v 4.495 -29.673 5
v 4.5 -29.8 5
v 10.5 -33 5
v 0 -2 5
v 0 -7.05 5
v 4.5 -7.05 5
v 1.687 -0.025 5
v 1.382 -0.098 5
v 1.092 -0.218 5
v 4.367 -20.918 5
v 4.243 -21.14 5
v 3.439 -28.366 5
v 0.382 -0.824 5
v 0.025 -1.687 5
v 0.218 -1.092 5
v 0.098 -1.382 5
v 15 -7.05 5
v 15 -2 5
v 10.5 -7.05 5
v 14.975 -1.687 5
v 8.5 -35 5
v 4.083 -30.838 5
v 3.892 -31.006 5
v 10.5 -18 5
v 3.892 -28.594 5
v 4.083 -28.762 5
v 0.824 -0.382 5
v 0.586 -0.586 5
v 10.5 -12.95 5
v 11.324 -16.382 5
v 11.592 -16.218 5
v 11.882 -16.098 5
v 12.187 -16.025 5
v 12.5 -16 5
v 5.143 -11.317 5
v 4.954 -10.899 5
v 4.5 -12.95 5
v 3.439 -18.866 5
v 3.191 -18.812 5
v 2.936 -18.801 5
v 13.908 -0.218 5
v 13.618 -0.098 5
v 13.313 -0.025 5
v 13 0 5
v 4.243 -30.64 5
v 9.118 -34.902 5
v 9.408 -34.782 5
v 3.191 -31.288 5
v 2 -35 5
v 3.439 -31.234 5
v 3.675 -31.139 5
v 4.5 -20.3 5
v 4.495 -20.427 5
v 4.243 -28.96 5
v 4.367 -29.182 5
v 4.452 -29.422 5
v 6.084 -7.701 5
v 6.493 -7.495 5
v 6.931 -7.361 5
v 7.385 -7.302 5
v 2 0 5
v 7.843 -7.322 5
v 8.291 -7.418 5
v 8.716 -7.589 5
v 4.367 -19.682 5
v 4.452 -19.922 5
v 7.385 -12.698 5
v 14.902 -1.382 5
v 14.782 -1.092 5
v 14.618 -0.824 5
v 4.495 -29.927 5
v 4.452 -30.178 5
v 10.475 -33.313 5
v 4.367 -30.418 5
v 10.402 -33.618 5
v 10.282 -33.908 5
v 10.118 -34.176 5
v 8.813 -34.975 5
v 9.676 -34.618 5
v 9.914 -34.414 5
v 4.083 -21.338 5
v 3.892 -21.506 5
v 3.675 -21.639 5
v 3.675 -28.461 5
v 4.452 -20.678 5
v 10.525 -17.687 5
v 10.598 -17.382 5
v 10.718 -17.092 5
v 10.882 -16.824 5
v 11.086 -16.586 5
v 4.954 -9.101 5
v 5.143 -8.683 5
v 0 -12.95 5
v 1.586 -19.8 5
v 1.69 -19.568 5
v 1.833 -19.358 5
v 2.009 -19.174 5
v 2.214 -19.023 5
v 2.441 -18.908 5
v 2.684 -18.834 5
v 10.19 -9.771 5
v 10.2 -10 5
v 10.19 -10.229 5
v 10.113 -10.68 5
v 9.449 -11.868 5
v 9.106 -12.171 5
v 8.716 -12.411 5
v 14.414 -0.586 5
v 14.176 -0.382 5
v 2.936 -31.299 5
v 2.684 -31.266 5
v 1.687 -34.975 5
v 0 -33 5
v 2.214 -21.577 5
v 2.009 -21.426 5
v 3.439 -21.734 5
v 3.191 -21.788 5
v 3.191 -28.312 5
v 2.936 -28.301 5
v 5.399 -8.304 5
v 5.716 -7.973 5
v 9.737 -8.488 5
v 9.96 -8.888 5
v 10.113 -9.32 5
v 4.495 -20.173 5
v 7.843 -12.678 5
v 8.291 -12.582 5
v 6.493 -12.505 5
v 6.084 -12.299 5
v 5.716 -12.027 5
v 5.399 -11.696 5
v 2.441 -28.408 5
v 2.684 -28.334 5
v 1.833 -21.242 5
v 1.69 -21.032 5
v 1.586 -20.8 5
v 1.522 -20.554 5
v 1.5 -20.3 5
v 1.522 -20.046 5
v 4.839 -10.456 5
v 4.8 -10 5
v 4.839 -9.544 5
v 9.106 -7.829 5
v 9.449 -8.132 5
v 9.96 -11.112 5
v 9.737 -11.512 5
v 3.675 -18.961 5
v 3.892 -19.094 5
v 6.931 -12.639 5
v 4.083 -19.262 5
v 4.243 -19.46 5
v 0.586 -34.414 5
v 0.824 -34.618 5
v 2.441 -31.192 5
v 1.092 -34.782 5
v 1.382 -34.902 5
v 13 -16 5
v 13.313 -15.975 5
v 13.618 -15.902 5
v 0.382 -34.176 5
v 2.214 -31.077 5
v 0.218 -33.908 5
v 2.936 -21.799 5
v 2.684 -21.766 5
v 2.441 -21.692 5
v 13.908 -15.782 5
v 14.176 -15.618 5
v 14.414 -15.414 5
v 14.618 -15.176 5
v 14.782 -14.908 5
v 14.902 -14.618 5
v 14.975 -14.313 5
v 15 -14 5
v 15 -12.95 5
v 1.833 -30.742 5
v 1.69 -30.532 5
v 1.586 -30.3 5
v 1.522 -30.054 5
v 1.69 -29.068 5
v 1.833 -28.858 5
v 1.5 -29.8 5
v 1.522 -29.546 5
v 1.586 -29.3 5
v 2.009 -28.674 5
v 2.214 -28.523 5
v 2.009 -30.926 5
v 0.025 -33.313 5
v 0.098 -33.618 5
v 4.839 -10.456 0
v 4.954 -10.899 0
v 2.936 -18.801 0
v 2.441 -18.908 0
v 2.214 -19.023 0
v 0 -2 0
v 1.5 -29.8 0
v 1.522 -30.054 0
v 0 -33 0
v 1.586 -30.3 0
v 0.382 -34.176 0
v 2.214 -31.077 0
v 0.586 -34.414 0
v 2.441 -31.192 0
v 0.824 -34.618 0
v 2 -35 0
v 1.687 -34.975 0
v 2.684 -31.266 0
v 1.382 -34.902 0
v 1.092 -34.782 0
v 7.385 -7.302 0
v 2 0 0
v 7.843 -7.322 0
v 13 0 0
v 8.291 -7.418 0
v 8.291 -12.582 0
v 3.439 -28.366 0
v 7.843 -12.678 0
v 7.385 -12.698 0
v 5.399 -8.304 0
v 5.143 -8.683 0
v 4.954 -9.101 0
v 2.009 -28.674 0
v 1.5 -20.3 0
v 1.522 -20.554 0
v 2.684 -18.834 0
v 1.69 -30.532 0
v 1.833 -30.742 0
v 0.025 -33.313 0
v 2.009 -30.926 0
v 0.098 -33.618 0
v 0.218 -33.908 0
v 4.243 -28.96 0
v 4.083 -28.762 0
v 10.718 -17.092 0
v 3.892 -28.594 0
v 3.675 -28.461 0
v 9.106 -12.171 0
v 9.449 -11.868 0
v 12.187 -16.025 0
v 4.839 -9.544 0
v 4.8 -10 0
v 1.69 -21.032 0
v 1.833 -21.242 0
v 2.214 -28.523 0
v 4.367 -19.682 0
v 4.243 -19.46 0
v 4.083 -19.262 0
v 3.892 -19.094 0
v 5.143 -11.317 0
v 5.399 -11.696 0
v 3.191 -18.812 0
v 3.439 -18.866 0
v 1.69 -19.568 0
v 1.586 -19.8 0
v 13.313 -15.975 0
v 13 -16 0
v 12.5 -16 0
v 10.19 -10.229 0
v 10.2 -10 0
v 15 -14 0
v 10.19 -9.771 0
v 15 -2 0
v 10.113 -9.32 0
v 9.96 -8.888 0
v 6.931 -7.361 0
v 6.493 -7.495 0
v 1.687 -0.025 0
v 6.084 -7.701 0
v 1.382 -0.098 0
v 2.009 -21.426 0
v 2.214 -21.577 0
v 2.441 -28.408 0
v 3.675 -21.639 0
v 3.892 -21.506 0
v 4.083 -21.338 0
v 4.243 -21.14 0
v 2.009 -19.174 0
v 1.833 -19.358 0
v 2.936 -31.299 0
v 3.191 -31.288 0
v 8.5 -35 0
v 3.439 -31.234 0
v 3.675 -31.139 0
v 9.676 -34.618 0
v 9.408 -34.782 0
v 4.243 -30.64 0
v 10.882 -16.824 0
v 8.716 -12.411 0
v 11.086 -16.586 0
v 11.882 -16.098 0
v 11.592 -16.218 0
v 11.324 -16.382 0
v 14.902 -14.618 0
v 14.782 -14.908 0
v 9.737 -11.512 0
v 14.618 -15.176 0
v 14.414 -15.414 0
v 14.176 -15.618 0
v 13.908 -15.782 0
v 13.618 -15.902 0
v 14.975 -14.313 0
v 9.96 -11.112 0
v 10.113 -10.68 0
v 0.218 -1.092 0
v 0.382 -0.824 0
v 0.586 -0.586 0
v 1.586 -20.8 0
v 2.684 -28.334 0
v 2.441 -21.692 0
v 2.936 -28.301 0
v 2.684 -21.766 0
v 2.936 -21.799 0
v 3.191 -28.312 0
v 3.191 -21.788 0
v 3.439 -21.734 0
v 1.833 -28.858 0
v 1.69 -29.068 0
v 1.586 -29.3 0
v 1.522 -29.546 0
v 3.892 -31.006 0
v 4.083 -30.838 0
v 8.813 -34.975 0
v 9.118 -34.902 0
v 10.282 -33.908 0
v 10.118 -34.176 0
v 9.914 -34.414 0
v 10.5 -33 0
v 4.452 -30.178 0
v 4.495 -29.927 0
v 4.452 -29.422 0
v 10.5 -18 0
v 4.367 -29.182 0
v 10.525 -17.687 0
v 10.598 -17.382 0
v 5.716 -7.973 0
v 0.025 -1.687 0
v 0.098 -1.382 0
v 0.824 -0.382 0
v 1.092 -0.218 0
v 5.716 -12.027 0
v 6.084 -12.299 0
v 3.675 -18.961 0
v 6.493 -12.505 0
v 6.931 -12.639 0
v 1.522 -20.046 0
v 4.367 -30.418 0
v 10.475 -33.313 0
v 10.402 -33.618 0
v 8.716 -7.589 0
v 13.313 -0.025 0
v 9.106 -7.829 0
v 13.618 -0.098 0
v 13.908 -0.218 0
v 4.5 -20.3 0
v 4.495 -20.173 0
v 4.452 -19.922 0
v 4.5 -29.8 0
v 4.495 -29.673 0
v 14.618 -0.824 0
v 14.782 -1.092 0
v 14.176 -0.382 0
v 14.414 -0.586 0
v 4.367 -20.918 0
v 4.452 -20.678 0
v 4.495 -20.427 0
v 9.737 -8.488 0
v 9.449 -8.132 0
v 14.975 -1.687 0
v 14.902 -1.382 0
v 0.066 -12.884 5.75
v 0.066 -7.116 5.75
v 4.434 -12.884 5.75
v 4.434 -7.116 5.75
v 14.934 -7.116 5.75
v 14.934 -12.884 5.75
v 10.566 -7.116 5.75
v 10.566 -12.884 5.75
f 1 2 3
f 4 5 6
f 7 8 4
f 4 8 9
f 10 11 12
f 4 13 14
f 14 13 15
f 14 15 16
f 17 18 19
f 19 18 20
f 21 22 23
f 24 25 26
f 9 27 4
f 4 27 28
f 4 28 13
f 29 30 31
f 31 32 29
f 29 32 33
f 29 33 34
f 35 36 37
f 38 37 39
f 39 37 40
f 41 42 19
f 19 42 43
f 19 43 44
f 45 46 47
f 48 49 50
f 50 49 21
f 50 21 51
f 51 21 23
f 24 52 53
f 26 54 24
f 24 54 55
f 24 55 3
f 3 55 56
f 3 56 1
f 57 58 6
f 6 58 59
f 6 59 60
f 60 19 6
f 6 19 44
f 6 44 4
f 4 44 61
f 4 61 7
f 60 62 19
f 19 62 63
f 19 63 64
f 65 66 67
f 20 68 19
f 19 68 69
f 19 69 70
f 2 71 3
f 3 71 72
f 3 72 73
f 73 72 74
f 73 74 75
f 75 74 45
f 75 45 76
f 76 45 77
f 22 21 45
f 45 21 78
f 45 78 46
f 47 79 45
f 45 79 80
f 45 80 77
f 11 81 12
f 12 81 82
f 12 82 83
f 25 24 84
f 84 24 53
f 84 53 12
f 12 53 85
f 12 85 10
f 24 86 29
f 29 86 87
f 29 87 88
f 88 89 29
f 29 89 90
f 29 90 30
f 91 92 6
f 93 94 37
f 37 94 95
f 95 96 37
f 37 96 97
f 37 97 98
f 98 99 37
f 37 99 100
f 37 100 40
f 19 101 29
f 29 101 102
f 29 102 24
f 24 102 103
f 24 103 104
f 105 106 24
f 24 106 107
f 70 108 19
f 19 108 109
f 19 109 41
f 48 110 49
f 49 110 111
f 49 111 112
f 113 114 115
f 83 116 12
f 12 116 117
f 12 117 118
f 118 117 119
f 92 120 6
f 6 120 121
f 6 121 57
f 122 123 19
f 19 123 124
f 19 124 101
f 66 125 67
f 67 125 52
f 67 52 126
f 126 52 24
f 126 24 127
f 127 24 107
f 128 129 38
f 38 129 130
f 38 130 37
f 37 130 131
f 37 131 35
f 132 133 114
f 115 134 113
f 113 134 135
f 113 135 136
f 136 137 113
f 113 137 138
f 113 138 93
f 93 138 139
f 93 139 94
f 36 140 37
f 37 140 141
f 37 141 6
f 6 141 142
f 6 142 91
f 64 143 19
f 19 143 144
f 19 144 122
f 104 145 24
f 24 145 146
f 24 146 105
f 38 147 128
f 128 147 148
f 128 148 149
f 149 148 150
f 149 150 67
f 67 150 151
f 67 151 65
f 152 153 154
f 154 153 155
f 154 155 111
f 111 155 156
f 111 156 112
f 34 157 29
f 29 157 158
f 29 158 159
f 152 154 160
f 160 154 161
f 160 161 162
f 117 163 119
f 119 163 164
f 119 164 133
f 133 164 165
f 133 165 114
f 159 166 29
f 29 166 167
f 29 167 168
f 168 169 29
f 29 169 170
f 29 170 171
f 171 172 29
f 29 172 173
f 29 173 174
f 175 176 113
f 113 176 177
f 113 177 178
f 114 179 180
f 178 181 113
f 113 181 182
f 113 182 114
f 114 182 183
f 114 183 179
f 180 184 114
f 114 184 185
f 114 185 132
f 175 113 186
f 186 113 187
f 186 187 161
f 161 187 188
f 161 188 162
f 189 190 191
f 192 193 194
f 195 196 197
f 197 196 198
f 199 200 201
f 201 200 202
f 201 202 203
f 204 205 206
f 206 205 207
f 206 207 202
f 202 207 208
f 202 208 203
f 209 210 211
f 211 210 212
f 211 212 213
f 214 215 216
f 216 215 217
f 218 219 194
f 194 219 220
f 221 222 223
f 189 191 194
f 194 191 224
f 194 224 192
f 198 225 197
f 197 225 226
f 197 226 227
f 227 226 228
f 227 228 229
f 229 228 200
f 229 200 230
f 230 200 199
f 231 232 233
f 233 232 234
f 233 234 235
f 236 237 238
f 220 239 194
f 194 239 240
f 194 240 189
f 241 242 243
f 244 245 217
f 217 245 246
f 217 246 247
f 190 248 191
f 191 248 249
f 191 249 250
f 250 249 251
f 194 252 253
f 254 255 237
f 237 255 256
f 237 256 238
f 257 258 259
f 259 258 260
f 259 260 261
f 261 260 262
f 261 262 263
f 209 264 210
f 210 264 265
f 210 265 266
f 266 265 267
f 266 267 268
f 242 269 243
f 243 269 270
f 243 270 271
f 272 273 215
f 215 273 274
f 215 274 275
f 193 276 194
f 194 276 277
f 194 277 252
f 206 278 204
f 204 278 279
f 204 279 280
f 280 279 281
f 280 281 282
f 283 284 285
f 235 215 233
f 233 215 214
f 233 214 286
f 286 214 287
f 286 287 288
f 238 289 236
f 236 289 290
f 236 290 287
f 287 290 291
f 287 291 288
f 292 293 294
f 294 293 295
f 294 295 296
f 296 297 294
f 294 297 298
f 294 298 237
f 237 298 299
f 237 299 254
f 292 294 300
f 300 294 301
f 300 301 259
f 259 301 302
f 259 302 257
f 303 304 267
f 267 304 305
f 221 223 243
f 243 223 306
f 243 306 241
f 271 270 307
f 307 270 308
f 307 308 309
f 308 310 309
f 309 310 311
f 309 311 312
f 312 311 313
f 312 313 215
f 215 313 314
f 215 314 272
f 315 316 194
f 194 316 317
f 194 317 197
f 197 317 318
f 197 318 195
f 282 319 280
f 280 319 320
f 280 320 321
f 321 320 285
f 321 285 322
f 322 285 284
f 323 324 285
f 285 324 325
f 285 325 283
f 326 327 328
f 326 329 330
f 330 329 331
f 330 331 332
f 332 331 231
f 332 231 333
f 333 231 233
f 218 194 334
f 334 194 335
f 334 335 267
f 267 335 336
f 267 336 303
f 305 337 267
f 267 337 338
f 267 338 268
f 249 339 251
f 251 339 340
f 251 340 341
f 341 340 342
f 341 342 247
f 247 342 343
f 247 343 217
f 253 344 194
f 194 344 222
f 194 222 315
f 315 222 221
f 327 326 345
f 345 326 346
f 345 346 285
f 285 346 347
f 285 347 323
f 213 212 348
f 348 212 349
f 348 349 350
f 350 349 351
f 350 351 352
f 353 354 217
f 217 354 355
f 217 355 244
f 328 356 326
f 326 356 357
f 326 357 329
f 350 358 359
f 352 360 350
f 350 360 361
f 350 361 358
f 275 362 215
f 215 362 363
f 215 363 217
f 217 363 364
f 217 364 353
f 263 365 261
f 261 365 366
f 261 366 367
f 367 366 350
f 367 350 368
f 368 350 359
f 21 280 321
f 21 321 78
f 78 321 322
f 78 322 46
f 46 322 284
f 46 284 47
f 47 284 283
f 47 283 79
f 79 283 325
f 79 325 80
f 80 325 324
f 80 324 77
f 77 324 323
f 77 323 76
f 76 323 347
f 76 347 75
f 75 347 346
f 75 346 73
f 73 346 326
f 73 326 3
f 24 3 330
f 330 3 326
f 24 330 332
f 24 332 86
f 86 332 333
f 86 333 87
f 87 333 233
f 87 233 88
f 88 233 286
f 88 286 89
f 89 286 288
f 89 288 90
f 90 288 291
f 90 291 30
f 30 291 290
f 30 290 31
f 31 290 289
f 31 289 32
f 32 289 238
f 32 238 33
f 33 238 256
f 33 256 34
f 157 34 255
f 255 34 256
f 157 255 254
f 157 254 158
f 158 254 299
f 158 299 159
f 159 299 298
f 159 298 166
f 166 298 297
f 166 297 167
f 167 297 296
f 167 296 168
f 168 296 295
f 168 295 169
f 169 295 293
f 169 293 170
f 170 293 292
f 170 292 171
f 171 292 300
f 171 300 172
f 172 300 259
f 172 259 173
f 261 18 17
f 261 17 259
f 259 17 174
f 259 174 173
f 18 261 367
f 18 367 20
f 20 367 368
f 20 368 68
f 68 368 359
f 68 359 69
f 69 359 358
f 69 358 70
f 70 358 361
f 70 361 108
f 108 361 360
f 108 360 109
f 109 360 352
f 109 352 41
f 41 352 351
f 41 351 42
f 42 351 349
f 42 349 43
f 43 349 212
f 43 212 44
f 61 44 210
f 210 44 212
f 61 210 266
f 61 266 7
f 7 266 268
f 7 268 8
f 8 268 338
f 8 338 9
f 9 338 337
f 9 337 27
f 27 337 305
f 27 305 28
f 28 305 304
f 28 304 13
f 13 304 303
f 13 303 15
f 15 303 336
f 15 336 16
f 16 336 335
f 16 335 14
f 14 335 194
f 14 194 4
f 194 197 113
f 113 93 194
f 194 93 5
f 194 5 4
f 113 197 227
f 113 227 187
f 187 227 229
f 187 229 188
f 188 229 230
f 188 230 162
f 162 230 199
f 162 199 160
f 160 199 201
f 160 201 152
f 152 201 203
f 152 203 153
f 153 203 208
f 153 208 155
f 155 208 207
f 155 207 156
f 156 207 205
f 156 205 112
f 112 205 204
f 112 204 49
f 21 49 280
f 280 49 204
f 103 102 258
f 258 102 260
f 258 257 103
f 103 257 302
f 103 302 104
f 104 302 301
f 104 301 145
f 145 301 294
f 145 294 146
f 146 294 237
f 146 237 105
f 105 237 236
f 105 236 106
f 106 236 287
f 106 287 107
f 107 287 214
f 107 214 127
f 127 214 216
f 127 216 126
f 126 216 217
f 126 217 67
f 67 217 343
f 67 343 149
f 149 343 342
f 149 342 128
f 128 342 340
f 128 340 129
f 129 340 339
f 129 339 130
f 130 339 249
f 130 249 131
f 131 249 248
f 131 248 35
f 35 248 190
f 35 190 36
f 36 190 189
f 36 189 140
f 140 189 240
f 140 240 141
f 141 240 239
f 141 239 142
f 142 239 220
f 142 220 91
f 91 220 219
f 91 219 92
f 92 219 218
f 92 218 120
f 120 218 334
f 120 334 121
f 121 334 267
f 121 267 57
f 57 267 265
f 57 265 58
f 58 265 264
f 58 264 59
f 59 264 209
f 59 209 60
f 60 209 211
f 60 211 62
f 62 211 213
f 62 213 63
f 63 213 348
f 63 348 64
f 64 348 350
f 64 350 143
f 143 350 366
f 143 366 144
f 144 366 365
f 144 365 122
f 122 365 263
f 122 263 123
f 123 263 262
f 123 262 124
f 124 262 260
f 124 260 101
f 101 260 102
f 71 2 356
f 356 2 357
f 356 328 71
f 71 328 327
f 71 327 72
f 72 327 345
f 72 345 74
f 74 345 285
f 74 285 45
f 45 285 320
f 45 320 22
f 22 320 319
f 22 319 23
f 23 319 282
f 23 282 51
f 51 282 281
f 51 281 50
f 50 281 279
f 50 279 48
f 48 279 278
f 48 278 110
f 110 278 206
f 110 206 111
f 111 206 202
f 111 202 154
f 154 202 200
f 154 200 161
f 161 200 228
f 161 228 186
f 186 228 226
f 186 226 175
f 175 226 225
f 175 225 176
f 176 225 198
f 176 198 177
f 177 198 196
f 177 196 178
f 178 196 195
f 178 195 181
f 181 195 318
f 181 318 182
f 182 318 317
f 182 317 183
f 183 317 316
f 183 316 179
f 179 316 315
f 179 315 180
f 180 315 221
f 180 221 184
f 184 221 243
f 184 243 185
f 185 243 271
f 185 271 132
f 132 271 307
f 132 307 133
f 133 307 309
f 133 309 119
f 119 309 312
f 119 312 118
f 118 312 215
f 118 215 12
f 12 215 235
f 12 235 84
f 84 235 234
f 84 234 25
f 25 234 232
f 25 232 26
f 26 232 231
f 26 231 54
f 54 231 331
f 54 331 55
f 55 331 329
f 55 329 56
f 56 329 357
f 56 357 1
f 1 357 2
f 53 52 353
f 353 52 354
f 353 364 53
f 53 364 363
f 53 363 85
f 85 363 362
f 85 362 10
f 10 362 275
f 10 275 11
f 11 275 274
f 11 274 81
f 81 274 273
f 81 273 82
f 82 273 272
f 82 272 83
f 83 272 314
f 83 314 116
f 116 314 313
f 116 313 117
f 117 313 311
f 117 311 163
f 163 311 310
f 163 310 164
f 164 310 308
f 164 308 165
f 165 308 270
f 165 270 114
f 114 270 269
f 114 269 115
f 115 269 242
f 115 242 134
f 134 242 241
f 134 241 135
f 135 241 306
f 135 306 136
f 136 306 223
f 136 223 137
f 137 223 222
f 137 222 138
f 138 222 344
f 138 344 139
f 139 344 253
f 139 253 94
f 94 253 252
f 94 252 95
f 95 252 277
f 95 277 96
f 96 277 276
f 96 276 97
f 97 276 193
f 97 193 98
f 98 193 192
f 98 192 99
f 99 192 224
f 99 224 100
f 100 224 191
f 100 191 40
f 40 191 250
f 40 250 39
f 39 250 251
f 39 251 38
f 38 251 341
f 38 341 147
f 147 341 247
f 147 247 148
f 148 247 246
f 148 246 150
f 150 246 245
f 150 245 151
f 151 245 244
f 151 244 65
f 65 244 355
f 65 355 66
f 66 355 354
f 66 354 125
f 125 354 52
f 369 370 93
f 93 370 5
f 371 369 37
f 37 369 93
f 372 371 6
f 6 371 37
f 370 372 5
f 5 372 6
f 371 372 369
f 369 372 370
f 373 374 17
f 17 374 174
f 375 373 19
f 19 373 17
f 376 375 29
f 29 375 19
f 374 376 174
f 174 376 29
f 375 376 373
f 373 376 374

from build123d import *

# Parameters (mm, degrees)
SKETCH1_R           = 2.7
SKETCH1_R_2         = 1.5
BOSS_EXTRUDE1_DEPTH = 5
SKETCH2_W           = 4.5
SKETCH2_H           = 5.9
BOSS_EXTRUDE2_DEPTH = 0.75
BOSS_EXTRUDE2_TAPER = 5


with BuildPart() as part:
    # Sketch1 → Boss-Extrude1 (new body)
    with BuildSketch(Plane.XY):
        with BuildLine():
            Line((0, -2), (0, -33))
            ThreePointArc((0, -33), (0.585786438, -34.414213562), (2, -35))
            Line((2, -35), (8.5, -35))
            ThreePointArc((8.5, -35), (9.914213562, -34.414213562), (10.5, -33))
            Line((10.5, -33), (10.5, -18))
            ThreePointArc((10.5, -18), (11.085786438, -16.585786438), (12.5, -16))
            Line((12.5, -16), (13, -16))
            ThreePointArc((13, -16), (14.414213562, -15.414213562), (15, -14))
            Line((15, -14), (15, -2))
            ThreePointArc((15, -2), (14.414213562, -0.585786438), (13, 0))
            Line((13, 0), (2, 0))
            ThreePointArc((2, 0), (0.585786438, -0.585786438), (0, -2))
        make_face()
        with Locations((7.5, -10)):
            Circle(SKETCH1_R, mode=Mode.SUBTRACT)
        with Locations((3, -29.8)):
            Circle(SKETCH1_R_2, mode=Mode.SUBTRACT)
        with Locations((3, -20.3)):
            Circle(SKETCH1_R_2, mode=Mode.SUBTRACT)
    extrude(amount=BOSS_EXTRUDE1_DEPTH)

    # Sketch2 → Boss-Extrude2 (add)
    with BuildSketch(Plane.XY.offset(5)):
        with Locations((2.25, -10)):
            Rectangle(SKETCH2_W, SKETCH2_H)
        with Locations((12.75, -10)):
            Rectangle(SKETCH2_W, SKETCH2_H)
    extrude(amount=BOSS_EXTRUDE2_DEPTH, taper=BOSS_EXTRUDE2_TAPER)


solid = part.part
